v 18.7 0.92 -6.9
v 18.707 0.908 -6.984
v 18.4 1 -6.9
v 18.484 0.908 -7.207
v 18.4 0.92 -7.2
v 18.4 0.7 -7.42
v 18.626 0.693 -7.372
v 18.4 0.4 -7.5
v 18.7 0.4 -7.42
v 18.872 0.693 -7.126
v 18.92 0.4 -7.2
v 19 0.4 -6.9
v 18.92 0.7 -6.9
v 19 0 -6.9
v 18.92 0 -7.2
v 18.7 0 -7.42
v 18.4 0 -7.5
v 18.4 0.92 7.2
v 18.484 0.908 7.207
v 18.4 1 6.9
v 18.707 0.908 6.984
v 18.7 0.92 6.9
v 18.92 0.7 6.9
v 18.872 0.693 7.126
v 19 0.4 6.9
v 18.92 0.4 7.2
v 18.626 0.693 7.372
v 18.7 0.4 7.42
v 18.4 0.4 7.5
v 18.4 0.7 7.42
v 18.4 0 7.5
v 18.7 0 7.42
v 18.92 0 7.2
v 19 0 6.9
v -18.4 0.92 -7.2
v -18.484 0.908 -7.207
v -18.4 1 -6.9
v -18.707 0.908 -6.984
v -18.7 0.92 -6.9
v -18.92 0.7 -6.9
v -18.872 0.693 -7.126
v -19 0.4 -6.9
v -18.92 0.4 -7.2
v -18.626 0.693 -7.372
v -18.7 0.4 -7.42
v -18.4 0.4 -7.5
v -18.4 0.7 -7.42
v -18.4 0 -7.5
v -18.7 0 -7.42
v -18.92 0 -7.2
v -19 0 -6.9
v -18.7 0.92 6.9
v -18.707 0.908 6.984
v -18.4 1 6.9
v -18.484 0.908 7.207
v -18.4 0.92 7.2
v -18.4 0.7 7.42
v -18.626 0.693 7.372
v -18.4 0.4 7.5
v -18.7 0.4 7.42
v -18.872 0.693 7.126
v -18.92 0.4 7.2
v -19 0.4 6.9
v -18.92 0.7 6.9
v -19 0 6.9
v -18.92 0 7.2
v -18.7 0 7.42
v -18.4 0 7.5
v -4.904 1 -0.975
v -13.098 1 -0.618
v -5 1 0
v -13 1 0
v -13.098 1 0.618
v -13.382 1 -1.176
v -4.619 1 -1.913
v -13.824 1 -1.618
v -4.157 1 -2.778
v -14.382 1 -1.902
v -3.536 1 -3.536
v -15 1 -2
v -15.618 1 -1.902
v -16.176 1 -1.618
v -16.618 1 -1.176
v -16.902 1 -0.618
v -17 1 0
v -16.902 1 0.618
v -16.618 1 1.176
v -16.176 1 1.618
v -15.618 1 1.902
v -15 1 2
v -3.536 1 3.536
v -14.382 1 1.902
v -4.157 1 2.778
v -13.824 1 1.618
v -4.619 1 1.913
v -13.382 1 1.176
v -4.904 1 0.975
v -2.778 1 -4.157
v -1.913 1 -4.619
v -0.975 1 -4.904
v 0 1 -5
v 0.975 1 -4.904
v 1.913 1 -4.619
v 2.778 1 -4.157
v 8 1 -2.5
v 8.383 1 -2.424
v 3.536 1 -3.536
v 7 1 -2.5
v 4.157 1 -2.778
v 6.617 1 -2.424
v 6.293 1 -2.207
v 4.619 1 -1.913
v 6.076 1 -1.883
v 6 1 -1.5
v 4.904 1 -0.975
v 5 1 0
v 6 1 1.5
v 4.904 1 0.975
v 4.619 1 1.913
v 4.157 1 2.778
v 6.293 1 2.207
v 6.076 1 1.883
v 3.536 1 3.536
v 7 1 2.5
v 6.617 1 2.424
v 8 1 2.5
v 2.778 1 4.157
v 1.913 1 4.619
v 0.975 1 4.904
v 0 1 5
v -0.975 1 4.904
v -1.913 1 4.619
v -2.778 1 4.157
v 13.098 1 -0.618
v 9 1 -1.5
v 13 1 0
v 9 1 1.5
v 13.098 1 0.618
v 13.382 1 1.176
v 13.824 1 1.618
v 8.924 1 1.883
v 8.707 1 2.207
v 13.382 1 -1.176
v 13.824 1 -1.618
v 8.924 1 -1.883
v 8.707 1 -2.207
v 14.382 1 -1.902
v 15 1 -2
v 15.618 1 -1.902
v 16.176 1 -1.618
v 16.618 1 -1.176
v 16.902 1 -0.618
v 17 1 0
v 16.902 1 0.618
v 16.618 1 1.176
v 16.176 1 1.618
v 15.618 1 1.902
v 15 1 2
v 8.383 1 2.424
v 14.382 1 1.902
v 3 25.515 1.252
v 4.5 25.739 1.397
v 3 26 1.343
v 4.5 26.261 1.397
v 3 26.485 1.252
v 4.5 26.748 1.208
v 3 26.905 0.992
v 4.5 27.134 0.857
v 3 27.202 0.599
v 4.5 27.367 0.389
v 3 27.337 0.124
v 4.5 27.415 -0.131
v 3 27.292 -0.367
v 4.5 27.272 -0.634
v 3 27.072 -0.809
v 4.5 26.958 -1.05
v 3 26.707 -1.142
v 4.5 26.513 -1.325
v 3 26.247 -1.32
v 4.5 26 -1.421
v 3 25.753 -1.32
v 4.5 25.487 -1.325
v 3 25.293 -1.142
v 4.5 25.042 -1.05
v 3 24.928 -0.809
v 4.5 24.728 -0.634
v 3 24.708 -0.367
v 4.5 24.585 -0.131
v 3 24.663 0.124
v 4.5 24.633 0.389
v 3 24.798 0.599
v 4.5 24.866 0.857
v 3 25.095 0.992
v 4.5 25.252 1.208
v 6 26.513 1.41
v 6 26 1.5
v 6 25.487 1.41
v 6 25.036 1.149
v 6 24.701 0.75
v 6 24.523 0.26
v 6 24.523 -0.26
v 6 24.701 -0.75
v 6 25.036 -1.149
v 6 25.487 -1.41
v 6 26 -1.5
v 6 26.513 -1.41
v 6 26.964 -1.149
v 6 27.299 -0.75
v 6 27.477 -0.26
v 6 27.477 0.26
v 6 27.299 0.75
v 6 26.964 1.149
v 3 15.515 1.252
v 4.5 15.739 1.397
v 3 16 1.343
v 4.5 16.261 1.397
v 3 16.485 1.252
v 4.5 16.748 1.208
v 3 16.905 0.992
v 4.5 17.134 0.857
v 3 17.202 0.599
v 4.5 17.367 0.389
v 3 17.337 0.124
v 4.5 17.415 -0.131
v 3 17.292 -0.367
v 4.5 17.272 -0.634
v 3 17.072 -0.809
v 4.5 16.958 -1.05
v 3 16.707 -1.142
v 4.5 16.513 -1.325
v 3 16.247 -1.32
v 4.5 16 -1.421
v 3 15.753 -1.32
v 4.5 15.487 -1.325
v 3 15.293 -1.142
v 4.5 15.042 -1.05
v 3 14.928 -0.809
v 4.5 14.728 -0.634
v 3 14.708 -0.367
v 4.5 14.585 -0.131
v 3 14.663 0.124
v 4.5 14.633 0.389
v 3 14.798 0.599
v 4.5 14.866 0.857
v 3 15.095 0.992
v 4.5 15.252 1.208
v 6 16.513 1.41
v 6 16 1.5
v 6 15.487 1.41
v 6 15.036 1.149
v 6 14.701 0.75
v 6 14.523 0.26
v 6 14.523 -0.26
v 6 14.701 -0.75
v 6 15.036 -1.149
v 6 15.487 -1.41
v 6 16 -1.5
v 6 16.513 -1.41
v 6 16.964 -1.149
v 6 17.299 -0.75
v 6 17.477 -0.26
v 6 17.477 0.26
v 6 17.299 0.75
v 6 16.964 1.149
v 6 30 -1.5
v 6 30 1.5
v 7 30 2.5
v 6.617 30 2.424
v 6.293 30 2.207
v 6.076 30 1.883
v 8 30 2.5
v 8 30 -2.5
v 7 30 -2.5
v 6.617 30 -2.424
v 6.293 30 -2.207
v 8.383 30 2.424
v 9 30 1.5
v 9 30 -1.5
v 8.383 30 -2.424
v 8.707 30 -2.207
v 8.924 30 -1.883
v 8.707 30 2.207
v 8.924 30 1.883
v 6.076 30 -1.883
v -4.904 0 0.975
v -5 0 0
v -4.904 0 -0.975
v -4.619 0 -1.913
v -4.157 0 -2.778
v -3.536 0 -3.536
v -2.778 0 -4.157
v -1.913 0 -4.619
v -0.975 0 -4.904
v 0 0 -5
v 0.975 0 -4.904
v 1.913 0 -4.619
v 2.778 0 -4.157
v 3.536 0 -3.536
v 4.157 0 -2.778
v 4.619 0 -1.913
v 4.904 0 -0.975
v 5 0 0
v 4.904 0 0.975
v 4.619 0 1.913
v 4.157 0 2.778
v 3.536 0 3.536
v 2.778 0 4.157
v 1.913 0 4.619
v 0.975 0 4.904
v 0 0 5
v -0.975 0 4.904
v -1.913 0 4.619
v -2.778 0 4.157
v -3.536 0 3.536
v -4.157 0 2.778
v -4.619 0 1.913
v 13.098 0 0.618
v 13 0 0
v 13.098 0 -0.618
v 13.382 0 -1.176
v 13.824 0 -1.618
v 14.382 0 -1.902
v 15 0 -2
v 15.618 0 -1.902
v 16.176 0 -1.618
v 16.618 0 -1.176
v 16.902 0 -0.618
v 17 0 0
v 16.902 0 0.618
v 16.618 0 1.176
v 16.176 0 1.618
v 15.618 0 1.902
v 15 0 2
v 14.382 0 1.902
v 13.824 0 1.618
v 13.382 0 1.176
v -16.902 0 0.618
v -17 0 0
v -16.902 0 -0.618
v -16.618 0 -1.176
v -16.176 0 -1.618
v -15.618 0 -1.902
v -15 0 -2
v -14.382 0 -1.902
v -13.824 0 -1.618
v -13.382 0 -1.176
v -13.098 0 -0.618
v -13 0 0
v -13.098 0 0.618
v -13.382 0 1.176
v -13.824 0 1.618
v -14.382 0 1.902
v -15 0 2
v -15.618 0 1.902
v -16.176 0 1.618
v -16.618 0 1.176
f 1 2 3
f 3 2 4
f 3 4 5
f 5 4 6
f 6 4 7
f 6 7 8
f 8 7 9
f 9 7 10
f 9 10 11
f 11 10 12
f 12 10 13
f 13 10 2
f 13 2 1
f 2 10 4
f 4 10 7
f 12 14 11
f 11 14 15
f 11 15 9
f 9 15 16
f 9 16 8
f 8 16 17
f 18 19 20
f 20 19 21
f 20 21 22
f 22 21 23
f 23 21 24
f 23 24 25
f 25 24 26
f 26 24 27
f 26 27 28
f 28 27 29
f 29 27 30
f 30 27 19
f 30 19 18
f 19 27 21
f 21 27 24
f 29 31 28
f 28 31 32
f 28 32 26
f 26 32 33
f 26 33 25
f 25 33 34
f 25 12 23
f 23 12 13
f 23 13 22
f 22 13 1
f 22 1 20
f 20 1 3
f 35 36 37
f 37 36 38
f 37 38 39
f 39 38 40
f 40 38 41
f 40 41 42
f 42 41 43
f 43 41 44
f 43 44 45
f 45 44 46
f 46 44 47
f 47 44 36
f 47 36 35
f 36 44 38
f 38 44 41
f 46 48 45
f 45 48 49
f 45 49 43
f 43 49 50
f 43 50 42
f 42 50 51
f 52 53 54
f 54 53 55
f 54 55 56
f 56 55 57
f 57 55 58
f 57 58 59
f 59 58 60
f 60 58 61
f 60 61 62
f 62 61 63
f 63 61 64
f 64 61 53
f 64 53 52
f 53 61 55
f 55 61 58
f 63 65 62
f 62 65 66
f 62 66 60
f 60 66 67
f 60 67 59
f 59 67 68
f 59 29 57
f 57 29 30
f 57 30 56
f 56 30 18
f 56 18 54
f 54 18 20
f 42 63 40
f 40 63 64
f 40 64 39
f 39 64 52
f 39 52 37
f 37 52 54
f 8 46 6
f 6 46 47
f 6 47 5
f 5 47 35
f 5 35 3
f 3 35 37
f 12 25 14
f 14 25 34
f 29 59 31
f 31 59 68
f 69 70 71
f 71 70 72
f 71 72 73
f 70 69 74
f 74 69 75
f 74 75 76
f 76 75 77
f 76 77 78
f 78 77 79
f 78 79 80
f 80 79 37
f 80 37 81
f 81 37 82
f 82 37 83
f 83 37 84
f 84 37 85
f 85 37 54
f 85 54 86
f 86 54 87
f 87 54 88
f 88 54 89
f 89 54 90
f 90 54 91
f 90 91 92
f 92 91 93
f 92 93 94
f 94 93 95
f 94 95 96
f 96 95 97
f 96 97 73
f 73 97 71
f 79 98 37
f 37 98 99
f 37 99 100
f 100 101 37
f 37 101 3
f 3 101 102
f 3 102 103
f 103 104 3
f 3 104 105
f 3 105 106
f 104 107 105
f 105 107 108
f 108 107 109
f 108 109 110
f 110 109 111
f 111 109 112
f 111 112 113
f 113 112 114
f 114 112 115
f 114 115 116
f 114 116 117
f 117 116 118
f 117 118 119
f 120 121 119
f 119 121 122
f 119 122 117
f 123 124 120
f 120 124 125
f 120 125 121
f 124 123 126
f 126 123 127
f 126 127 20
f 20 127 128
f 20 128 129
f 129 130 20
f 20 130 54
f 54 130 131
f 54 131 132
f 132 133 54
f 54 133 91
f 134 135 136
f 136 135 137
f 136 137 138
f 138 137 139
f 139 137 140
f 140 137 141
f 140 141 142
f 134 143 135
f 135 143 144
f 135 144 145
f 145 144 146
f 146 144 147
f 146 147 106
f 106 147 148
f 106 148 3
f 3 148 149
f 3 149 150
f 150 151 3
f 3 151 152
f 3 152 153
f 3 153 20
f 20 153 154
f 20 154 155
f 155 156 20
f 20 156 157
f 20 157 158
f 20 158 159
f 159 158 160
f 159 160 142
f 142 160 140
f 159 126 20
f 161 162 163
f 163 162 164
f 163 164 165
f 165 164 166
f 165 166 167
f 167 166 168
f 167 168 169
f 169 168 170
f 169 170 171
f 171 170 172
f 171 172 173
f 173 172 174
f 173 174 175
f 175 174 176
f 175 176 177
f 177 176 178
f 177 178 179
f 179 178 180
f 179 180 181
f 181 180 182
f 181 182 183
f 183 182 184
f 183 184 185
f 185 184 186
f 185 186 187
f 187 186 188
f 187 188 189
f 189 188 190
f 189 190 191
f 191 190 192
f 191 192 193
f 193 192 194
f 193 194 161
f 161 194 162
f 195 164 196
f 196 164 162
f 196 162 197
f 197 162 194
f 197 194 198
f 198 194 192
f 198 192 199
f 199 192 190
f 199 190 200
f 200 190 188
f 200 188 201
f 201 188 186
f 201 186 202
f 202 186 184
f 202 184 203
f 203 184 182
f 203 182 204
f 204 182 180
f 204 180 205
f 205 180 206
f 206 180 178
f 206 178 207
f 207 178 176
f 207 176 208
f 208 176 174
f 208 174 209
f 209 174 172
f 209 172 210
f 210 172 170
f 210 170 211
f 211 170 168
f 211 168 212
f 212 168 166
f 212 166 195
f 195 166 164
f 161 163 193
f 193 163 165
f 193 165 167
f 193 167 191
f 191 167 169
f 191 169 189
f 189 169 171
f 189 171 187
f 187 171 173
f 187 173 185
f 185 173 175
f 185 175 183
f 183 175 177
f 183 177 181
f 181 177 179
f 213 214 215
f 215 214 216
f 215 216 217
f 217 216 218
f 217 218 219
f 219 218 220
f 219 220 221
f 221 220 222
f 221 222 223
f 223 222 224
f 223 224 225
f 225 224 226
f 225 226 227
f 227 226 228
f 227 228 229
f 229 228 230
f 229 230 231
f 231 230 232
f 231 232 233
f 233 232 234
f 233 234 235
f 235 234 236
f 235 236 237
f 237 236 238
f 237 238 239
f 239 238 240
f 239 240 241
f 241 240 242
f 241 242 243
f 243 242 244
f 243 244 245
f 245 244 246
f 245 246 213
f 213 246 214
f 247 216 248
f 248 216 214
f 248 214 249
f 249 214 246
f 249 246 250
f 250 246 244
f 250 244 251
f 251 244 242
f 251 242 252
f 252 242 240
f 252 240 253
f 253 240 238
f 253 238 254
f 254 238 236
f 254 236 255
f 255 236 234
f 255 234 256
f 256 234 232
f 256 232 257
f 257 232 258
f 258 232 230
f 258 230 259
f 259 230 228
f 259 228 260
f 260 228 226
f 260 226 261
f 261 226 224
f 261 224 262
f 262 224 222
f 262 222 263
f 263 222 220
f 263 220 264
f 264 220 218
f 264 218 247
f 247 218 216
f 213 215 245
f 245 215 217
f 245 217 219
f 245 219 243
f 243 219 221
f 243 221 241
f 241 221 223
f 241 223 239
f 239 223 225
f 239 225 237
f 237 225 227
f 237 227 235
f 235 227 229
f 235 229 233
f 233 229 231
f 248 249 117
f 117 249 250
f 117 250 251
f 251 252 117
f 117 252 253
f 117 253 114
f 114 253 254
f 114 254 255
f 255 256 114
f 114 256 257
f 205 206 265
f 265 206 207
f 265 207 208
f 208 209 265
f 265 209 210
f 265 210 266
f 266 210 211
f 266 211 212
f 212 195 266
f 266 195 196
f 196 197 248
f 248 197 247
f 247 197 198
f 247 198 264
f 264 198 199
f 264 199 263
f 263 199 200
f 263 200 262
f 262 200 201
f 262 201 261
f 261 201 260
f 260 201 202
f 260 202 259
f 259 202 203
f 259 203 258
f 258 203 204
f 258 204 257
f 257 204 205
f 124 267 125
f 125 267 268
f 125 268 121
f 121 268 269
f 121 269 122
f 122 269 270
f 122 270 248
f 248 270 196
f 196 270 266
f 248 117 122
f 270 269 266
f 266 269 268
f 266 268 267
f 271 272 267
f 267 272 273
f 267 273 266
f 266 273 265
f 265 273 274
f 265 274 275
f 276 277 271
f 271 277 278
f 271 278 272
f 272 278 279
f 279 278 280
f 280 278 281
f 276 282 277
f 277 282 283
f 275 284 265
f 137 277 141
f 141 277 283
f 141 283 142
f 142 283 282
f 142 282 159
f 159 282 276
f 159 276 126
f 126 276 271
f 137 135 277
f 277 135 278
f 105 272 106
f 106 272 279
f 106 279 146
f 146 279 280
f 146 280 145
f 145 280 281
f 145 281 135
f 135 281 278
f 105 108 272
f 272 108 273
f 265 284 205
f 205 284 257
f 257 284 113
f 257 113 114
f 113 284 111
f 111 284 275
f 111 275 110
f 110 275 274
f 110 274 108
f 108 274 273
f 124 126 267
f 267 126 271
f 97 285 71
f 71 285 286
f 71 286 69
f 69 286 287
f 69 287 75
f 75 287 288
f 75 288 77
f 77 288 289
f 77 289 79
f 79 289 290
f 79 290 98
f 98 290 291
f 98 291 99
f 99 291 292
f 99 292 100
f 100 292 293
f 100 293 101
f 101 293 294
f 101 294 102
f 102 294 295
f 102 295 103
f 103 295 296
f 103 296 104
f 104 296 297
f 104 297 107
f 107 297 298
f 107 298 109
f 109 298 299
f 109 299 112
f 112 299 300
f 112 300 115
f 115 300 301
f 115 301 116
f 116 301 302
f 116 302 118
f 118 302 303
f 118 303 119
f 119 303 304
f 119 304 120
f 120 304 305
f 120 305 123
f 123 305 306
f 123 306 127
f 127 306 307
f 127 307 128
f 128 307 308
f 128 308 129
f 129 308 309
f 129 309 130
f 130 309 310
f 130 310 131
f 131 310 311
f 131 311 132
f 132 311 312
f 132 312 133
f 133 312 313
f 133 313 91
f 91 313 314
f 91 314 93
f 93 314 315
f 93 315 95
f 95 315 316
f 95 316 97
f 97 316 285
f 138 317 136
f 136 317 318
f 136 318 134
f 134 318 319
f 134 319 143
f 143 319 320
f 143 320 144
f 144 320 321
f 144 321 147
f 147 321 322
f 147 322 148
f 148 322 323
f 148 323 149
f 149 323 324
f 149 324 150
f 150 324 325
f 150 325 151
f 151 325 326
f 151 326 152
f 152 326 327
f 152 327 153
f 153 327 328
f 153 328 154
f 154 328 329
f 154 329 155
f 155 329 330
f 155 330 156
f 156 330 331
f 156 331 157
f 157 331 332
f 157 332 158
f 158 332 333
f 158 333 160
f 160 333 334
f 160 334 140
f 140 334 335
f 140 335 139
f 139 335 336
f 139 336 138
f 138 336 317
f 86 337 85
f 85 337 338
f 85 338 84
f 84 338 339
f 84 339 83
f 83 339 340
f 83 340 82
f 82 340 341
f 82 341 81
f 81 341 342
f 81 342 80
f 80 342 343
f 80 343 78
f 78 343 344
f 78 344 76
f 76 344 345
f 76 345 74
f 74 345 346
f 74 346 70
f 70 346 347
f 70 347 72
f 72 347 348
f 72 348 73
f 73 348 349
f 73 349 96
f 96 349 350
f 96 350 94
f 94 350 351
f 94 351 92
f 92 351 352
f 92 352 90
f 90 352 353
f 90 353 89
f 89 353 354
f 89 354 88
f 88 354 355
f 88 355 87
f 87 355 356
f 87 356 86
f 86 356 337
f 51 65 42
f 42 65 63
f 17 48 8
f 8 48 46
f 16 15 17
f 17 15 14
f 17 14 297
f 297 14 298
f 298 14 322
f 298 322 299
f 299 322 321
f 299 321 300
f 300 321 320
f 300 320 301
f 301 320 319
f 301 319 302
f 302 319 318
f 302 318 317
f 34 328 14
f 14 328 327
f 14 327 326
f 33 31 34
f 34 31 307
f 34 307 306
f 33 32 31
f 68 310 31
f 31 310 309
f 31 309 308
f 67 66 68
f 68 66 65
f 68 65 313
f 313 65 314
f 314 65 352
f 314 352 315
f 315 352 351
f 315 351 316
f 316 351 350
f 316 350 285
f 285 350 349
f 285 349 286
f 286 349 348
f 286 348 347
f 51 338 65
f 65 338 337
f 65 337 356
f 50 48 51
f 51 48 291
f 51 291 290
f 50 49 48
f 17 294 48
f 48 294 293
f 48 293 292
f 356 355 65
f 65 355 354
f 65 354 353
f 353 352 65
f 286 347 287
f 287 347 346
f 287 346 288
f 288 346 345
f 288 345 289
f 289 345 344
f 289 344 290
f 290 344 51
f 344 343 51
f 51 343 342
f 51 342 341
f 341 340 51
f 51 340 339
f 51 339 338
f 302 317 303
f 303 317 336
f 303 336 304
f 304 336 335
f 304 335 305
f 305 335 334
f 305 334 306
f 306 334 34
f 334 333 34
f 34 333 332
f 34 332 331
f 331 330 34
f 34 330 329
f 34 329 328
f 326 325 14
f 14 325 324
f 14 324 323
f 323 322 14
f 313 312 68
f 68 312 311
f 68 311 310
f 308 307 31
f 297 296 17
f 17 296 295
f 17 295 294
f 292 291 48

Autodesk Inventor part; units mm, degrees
ref_plane "YZ Plane" through (0, 0, 0) normal (1, 0, 0) x (0, 1, 0)
ref_plane "XZ Plane" through (0, 0, 0) normal (0, 1, 0) x (-1, 0, 0)
ref_plane "XY Plane" through (0, 0, 0) normal (0, 0, 1) x (1, 0, 0)
sketch "Szkic1" plane through (0, 0, 0) normal (0, 1, 0) x (-1, 0, 0)
  line L0 (0, 0) -> (-15, 0)
  line L1 (0, 0) -> (15, 0)
  circle A0 centre (0, 0) radius 5
  circle A1 centre (15, 0) radius 2
  circle A2 centre (-15, 0) radius 2
  line L2 (-19, 7.5) -> (19, 7.5)
  line L3 (19, 7.5) -> (19, -7.5)
  line L4 (19, -7.5) -> (-19, -7.5)
  line L5 (-19, -7.5) -> (-19, 7.5)
  line L6 (-19, 7.5) -> (19, -7.5) construction
  line L7 (19, 7.5) -> (-19, -7.5) construction
  line L8 (0, 0) -> (15, 0)
  line L9 (6, 2.5) -> (9, 2.5)
  line L10 (9, 2.5) -> (9, -2.5)
  line L11 (9, -2.5) -> (6, -2.5)
  line L12 (6, -2.5) -> (6, 2.5)
  line L13 (6, 2.5) -> (9, -2.5) construction
  line L14 (9, 2.5) -> (6, -2.5) construction
  line L15 (-9, 2.5) -> (-6, 2.5)
  line L16 (-6, 2.5) -> (-6, -2.5)
  line L17 (-6, -2.5) -> (-9, -2.5)
  line L18 (-9, -2.5) -> (-9, 2.5)
  line L19 (-9, 2.5) -> (-6, -2.5) construction
  line L20 (-6, 2.5) -> (-9, -2.5) construction
  point P0 (7.5, 0)
  point P1 (-7.5, 0)
  point P2 (-5, 0)
  point P3 (5, 0)
  dimension "d0" = 15
  dimension "d1" = 15
  dimension "d2" = 10
  dimension "d3" = 4
  dimension "d4" = 4
  dimension "d5" = 38
  dimension "d6" = 15
  dimension "d7" = 3
  dimension "d8" = 5
  dimension "d9" = 3
  dimension "d10" = 5
extrude "Wyciągnięcie proste1" add sketch "Szkic1" along normal blind 1 contours L16 L17 L18 L0 | L0 L18 L15 L16 | L12 L9 L10 L1 | L1 L10 L11 L12 | L2 L3 L4 L5
extrude "Wyciągnięcie proste2" add sketch "Szkic1" along normal blind 30 contours L16 L17 L18 L0 | L0 L18 L15 L16
sketch "Szkic2" plane through (-6, 1, -2.5) normal (1, 0, 0) x (0, 0, -1)
  line L0 (0, 19) -> (-5, 19)
  line L1 (0, 19) -> (-2.12132, 16.87868)
  line L2 (0, 19) -> (3, 19) construction
  circle A0 centre (-2.12132, 16.87868) radius 1.5
  point P0 (-2.5, -1)
  dimension "d15" = 3
  dimension "d16" = 135
  dimension "d17" = 3
extrude "Wyciągnięcie proste3" [suppressed]
fillet "Zaokrąglenie1" radius 1 4 edges at (6, 15.5, -2.5) (9, 15.5, -2.5) (9, 15.5, 2.5) (6, 15.5, 2.5)
sketch "Szkic3" plane through (6, 1, 1.5) normal (-1, 0, 0) x (0, 0, 1)
  line L0 (-1.5, 27) -> (-1.5, 25)
  circle A0 centre (-1.5, 25) radius 1.5
  line L1 (-1.5, 25) -> (-1.5, 15)
  circle A1 centre (-1.5, 15) radius 1.5
  line L2 (-3, 29) -> (0, 29) projected
  point P0 (-1.5, -1)
  point P1 (0, 19)
  point P2 (-3, 19)
  point P3 (-1.5, 29)
  dimension "d21" = 2
  dimension "d22" = 3
  dimension "d23" = 10
  dimension "d24" = 3
  dimension "d28" = 2
sketch "Szkic3 outline for Wyciągnięcie proste4" plane through (6, 1, 1.5) normal (-1, 0, 0) x (0, 0, 1)
  circle A0 centre (-1.5, 25) radius 1.5
  circle A1 centre (-1.5, 15) radius 1.5
extrude "Wyciągnięcie proste4" add sketch "Szkic3 outline for Wyciągnięcie proste4" along normal blind 3 draft -3
fillet "Zaokrąglenie2" radius 0.6 8 edges at (-19, 0.5, 7.5) (-19, 0.5, -7.5) (-19, 1, 0) (0, 1, 7.5) (19, 1, 0) (19, 0.5, 7.5) (19, 0.5, -7.5) (0, 1, -7.5)
properties part number "sensor_holder" material "Tworzywo sztuczne ABS"
